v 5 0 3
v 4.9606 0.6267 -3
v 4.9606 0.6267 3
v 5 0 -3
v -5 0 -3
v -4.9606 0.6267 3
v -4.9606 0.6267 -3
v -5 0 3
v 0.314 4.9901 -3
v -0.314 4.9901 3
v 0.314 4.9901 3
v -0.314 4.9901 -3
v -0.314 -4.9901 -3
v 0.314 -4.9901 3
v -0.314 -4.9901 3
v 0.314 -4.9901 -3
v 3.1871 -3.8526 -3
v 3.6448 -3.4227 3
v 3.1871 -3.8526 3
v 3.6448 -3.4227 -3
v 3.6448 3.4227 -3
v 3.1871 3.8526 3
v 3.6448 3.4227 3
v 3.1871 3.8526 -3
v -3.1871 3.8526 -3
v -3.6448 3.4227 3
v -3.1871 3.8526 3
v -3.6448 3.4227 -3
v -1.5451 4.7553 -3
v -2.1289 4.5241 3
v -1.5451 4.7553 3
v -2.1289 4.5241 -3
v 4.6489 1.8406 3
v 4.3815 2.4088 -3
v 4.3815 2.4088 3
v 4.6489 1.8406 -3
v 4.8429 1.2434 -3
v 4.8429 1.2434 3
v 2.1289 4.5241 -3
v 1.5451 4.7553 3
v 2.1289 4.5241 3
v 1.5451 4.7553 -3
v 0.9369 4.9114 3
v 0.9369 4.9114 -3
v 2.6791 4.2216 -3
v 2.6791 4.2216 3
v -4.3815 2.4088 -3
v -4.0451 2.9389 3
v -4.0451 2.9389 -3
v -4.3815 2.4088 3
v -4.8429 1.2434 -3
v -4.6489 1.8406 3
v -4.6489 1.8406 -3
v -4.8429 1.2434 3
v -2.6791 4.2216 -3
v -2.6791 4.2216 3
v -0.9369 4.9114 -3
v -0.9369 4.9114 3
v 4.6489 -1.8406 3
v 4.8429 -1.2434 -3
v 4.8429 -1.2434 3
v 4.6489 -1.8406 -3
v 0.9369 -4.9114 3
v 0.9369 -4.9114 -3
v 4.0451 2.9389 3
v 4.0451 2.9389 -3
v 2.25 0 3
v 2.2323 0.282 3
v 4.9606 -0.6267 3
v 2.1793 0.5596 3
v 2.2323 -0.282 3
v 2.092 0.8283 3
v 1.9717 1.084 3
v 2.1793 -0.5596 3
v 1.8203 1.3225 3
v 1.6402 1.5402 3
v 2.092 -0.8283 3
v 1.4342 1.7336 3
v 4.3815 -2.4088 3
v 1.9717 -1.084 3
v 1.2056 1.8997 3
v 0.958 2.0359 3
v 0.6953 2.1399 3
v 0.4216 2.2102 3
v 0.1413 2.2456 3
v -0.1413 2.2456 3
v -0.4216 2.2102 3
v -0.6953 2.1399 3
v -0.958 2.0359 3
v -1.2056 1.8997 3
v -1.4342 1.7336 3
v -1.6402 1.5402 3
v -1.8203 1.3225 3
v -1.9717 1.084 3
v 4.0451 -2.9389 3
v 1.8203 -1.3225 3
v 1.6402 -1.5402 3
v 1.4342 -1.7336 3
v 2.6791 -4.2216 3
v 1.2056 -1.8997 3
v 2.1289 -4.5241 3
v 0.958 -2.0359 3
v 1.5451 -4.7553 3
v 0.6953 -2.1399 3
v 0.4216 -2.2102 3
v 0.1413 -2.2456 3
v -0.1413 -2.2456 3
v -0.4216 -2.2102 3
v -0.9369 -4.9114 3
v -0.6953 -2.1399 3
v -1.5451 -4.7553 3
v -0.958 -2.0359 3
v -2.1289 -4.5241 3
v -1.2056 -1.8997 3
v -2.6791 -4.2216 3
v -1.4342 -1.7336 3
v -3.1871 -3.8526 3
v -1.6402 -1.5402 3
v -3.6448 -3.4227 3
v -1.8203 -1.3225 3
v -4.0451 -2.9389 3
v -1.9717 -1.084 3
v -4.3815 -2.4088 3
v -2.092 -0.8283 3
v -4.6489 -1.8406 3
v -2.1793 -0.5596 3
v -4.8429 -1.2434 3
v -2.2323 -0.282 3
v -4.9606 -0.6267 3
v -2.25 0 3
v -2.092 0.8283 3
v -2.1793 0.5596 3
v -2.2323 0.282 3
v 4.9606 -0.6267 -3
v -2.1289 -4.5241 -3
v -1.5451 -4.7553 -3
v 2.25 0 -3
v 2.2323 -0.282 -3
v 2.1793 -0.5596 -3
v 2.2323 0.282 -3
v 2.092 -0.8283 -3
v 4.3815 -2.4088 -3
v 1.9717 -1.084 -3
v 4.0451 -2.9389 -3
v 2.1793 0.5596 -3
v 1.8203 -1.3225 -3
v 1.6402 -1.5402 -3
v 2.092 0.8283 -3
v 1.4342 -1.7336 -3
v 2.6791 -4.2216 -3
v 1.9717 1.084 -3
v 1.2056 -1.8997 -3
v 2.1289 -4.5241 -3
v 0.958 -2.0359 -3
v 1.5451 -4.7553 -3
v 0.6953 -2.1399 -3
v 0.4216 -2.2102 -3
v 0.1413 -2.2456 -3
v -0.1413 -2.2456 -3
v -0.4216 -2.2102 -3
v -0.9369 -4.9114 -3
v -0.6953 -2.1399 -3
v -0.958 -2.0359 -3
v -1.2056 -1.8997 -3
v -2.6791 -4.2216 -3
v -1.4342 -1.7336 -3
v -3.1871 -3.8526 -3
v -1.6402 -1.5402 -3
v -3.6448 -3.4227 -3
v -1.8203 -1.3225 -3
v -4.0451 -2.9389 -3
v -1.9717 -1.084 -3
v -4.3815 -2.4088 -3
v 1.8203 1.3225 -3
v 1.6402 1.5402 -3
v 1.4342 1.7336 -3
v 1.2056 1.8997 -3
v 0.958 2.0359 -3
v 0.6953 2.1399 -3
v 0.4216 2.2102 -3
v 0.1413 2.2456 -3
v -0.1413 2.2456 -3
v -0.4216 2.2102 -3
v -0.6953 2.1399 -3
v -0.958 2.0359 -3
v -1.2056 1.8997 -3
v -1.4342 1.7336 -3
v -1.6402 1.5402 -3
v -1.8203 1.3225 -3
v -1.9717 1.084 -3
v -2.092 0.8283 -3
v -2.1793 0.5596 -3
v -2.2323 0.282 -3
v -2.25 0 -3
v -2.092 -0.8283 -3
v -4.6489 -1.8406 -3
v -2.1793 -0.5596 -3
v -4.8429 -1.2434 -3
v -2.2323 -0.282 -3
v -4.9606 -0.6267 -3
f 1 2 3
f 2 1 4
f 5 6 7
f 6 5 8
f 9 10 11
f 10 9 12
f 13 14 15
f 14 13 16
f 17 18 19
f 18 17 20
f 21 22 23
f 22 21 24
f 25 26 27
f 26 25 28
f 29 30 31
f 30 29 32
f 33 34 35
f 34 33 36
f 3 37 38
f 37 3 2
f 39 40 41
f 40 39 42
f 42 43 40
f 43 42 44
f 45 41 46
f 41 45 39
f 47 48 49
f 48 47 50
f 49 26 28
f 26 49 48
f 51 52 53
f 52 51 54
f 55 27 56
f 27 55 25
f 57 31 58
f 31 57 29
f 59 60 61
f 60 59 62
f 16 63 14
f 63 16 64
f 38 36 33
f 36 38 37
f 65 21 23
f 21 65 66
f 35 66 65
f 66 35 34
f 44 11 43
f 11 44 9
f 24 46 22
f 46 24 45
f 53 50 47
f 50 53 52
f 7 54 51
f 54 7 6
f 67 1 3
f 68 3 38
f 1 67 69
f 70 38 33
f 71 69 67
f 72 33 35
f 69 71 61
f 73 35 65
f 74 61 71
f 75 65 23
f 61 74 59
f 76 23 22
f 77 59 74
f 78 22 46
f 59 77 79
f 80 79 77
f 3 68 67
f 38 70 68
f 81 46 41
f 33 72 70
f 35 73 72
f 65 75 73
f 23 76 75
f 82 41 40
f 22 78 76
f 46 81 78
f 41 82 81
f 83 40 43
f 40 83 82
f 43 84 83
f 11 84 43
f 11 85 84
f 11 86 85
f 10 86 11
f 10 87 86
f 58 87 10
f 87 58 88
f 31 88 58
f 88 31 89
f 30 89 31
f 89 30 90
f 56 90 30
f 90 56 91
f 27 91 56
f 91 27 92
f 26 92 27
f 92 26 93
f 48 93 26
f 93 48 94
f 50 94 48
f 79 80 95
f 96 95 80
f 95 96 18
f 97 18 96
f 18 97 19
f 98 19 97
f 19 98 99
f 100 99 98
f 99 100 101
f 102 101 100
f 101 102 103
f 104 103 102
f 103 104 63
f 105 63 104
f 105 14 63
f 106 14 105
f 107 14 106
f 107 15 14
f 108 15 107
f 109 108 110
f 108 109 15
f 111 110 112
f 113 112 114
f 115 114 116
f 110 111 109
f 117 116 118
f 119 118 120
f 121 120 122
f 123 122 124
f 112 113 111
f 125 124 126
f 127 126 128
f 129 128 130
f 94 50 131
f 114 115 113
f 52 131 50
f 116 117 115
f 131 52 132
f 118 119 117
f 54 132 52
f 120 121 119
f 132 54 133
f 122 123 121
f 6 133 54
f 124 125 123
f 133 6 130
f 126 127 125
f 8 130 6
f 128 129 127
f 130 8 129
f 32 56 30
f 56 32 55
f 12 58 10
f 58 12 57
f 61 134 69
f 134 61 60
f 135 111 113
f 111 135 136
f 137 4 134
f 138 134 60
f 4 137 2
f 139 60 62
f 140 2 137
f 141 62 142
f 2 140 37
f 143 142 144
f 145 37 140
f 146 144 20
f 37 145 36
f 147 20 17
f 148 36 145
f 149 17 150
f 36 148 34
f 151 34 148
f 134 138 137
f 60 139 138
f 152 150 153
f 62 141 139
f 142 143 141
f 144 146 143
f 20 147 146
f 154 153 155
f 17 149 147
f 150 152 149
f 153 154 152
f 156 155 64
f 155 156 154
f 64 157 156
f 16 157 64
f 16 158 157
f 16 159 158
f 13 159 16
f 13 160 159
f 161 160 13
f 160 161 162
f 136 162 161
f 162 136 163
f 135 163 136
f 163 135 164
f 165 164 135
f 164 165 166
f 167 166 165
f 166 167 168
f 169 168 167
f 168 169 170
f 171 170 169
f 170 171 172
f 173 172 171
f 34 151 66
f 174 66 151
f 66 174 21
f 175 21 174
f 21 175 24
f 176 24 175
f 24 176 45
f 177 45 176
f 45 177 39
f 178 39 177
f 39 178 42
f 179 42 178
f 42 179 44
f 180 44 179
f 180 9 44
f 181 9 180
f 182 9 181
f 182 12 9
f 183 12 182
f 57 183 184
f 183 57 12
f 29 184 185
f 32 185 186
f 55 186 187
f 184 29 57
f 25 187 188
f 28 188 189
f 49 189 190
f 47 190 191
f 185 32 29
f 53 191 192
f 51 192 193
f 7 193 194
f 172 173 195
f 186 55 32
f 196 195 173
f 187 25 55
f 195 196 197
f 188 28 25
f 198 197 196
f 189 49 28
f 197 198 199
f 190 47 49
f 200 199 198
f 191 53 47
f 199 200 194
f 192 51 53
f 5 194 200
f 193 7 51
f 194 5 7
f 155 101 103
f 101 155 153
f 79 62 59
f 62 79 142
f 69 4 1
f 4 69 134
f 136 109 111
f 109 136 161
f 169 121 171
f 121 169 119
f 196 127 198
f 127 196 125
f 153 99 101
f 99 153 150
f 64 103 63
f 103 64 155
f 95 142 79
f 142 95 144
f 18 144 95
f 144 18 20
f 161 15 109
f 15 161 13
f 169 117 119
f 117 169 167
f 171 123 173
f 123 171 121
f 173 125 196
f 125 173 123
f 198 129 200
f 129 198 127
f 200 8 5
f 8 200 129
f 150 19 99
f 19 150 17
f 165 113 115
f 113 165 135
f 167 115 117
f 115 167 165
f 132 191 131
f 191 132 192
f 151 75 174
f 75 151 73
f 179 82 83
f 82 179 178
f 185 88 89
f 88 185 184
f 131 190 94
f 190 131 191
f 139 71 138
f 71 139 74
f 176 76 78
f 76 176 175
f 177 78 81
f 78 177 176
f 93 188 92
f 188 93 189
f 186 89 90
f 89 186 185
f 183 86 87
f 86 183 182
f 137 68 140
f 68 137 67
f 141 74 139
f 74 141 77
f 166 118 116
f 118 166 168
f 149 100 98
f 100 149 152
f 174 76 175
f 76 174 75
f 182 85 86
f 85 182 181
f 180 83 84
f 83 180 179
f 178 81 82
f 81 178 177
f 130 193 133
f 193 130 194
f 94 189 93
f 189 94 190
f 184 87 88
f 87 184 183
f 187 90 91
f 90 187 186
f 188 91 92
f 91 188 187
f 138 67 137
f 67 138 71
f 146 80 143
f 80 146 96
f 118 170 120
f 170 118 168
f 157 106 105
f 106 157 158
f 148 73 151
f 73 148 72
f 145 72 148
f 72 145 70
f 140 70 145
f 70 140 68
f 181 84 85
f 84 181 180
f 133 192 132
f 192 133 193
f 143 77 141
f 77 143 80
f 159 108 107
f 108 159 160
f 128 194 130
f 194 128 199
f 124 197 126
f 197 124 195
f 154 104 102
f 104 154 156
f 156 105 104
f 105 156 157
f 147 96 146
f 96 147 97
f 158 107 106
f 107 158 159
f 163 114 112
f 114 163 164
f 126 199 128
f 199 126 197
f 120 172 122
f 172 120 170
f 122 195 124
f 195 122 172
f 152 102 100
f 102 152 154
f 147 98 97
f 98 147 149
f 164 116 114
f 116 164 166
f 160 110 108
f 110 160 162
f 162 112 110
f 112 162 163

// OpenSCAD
$fn = 50;


difference() {
	union() {
		translate(v = [0, 0, -3.0000000000]) {
			cylinder(h = 6, r = 5.0000000000);
		}
	}
	union() {
		translate(v = [0, 0, -100.0000000000]) {
			cylinder(h = 200, r = 2.2500000000);
		}
	}
}
